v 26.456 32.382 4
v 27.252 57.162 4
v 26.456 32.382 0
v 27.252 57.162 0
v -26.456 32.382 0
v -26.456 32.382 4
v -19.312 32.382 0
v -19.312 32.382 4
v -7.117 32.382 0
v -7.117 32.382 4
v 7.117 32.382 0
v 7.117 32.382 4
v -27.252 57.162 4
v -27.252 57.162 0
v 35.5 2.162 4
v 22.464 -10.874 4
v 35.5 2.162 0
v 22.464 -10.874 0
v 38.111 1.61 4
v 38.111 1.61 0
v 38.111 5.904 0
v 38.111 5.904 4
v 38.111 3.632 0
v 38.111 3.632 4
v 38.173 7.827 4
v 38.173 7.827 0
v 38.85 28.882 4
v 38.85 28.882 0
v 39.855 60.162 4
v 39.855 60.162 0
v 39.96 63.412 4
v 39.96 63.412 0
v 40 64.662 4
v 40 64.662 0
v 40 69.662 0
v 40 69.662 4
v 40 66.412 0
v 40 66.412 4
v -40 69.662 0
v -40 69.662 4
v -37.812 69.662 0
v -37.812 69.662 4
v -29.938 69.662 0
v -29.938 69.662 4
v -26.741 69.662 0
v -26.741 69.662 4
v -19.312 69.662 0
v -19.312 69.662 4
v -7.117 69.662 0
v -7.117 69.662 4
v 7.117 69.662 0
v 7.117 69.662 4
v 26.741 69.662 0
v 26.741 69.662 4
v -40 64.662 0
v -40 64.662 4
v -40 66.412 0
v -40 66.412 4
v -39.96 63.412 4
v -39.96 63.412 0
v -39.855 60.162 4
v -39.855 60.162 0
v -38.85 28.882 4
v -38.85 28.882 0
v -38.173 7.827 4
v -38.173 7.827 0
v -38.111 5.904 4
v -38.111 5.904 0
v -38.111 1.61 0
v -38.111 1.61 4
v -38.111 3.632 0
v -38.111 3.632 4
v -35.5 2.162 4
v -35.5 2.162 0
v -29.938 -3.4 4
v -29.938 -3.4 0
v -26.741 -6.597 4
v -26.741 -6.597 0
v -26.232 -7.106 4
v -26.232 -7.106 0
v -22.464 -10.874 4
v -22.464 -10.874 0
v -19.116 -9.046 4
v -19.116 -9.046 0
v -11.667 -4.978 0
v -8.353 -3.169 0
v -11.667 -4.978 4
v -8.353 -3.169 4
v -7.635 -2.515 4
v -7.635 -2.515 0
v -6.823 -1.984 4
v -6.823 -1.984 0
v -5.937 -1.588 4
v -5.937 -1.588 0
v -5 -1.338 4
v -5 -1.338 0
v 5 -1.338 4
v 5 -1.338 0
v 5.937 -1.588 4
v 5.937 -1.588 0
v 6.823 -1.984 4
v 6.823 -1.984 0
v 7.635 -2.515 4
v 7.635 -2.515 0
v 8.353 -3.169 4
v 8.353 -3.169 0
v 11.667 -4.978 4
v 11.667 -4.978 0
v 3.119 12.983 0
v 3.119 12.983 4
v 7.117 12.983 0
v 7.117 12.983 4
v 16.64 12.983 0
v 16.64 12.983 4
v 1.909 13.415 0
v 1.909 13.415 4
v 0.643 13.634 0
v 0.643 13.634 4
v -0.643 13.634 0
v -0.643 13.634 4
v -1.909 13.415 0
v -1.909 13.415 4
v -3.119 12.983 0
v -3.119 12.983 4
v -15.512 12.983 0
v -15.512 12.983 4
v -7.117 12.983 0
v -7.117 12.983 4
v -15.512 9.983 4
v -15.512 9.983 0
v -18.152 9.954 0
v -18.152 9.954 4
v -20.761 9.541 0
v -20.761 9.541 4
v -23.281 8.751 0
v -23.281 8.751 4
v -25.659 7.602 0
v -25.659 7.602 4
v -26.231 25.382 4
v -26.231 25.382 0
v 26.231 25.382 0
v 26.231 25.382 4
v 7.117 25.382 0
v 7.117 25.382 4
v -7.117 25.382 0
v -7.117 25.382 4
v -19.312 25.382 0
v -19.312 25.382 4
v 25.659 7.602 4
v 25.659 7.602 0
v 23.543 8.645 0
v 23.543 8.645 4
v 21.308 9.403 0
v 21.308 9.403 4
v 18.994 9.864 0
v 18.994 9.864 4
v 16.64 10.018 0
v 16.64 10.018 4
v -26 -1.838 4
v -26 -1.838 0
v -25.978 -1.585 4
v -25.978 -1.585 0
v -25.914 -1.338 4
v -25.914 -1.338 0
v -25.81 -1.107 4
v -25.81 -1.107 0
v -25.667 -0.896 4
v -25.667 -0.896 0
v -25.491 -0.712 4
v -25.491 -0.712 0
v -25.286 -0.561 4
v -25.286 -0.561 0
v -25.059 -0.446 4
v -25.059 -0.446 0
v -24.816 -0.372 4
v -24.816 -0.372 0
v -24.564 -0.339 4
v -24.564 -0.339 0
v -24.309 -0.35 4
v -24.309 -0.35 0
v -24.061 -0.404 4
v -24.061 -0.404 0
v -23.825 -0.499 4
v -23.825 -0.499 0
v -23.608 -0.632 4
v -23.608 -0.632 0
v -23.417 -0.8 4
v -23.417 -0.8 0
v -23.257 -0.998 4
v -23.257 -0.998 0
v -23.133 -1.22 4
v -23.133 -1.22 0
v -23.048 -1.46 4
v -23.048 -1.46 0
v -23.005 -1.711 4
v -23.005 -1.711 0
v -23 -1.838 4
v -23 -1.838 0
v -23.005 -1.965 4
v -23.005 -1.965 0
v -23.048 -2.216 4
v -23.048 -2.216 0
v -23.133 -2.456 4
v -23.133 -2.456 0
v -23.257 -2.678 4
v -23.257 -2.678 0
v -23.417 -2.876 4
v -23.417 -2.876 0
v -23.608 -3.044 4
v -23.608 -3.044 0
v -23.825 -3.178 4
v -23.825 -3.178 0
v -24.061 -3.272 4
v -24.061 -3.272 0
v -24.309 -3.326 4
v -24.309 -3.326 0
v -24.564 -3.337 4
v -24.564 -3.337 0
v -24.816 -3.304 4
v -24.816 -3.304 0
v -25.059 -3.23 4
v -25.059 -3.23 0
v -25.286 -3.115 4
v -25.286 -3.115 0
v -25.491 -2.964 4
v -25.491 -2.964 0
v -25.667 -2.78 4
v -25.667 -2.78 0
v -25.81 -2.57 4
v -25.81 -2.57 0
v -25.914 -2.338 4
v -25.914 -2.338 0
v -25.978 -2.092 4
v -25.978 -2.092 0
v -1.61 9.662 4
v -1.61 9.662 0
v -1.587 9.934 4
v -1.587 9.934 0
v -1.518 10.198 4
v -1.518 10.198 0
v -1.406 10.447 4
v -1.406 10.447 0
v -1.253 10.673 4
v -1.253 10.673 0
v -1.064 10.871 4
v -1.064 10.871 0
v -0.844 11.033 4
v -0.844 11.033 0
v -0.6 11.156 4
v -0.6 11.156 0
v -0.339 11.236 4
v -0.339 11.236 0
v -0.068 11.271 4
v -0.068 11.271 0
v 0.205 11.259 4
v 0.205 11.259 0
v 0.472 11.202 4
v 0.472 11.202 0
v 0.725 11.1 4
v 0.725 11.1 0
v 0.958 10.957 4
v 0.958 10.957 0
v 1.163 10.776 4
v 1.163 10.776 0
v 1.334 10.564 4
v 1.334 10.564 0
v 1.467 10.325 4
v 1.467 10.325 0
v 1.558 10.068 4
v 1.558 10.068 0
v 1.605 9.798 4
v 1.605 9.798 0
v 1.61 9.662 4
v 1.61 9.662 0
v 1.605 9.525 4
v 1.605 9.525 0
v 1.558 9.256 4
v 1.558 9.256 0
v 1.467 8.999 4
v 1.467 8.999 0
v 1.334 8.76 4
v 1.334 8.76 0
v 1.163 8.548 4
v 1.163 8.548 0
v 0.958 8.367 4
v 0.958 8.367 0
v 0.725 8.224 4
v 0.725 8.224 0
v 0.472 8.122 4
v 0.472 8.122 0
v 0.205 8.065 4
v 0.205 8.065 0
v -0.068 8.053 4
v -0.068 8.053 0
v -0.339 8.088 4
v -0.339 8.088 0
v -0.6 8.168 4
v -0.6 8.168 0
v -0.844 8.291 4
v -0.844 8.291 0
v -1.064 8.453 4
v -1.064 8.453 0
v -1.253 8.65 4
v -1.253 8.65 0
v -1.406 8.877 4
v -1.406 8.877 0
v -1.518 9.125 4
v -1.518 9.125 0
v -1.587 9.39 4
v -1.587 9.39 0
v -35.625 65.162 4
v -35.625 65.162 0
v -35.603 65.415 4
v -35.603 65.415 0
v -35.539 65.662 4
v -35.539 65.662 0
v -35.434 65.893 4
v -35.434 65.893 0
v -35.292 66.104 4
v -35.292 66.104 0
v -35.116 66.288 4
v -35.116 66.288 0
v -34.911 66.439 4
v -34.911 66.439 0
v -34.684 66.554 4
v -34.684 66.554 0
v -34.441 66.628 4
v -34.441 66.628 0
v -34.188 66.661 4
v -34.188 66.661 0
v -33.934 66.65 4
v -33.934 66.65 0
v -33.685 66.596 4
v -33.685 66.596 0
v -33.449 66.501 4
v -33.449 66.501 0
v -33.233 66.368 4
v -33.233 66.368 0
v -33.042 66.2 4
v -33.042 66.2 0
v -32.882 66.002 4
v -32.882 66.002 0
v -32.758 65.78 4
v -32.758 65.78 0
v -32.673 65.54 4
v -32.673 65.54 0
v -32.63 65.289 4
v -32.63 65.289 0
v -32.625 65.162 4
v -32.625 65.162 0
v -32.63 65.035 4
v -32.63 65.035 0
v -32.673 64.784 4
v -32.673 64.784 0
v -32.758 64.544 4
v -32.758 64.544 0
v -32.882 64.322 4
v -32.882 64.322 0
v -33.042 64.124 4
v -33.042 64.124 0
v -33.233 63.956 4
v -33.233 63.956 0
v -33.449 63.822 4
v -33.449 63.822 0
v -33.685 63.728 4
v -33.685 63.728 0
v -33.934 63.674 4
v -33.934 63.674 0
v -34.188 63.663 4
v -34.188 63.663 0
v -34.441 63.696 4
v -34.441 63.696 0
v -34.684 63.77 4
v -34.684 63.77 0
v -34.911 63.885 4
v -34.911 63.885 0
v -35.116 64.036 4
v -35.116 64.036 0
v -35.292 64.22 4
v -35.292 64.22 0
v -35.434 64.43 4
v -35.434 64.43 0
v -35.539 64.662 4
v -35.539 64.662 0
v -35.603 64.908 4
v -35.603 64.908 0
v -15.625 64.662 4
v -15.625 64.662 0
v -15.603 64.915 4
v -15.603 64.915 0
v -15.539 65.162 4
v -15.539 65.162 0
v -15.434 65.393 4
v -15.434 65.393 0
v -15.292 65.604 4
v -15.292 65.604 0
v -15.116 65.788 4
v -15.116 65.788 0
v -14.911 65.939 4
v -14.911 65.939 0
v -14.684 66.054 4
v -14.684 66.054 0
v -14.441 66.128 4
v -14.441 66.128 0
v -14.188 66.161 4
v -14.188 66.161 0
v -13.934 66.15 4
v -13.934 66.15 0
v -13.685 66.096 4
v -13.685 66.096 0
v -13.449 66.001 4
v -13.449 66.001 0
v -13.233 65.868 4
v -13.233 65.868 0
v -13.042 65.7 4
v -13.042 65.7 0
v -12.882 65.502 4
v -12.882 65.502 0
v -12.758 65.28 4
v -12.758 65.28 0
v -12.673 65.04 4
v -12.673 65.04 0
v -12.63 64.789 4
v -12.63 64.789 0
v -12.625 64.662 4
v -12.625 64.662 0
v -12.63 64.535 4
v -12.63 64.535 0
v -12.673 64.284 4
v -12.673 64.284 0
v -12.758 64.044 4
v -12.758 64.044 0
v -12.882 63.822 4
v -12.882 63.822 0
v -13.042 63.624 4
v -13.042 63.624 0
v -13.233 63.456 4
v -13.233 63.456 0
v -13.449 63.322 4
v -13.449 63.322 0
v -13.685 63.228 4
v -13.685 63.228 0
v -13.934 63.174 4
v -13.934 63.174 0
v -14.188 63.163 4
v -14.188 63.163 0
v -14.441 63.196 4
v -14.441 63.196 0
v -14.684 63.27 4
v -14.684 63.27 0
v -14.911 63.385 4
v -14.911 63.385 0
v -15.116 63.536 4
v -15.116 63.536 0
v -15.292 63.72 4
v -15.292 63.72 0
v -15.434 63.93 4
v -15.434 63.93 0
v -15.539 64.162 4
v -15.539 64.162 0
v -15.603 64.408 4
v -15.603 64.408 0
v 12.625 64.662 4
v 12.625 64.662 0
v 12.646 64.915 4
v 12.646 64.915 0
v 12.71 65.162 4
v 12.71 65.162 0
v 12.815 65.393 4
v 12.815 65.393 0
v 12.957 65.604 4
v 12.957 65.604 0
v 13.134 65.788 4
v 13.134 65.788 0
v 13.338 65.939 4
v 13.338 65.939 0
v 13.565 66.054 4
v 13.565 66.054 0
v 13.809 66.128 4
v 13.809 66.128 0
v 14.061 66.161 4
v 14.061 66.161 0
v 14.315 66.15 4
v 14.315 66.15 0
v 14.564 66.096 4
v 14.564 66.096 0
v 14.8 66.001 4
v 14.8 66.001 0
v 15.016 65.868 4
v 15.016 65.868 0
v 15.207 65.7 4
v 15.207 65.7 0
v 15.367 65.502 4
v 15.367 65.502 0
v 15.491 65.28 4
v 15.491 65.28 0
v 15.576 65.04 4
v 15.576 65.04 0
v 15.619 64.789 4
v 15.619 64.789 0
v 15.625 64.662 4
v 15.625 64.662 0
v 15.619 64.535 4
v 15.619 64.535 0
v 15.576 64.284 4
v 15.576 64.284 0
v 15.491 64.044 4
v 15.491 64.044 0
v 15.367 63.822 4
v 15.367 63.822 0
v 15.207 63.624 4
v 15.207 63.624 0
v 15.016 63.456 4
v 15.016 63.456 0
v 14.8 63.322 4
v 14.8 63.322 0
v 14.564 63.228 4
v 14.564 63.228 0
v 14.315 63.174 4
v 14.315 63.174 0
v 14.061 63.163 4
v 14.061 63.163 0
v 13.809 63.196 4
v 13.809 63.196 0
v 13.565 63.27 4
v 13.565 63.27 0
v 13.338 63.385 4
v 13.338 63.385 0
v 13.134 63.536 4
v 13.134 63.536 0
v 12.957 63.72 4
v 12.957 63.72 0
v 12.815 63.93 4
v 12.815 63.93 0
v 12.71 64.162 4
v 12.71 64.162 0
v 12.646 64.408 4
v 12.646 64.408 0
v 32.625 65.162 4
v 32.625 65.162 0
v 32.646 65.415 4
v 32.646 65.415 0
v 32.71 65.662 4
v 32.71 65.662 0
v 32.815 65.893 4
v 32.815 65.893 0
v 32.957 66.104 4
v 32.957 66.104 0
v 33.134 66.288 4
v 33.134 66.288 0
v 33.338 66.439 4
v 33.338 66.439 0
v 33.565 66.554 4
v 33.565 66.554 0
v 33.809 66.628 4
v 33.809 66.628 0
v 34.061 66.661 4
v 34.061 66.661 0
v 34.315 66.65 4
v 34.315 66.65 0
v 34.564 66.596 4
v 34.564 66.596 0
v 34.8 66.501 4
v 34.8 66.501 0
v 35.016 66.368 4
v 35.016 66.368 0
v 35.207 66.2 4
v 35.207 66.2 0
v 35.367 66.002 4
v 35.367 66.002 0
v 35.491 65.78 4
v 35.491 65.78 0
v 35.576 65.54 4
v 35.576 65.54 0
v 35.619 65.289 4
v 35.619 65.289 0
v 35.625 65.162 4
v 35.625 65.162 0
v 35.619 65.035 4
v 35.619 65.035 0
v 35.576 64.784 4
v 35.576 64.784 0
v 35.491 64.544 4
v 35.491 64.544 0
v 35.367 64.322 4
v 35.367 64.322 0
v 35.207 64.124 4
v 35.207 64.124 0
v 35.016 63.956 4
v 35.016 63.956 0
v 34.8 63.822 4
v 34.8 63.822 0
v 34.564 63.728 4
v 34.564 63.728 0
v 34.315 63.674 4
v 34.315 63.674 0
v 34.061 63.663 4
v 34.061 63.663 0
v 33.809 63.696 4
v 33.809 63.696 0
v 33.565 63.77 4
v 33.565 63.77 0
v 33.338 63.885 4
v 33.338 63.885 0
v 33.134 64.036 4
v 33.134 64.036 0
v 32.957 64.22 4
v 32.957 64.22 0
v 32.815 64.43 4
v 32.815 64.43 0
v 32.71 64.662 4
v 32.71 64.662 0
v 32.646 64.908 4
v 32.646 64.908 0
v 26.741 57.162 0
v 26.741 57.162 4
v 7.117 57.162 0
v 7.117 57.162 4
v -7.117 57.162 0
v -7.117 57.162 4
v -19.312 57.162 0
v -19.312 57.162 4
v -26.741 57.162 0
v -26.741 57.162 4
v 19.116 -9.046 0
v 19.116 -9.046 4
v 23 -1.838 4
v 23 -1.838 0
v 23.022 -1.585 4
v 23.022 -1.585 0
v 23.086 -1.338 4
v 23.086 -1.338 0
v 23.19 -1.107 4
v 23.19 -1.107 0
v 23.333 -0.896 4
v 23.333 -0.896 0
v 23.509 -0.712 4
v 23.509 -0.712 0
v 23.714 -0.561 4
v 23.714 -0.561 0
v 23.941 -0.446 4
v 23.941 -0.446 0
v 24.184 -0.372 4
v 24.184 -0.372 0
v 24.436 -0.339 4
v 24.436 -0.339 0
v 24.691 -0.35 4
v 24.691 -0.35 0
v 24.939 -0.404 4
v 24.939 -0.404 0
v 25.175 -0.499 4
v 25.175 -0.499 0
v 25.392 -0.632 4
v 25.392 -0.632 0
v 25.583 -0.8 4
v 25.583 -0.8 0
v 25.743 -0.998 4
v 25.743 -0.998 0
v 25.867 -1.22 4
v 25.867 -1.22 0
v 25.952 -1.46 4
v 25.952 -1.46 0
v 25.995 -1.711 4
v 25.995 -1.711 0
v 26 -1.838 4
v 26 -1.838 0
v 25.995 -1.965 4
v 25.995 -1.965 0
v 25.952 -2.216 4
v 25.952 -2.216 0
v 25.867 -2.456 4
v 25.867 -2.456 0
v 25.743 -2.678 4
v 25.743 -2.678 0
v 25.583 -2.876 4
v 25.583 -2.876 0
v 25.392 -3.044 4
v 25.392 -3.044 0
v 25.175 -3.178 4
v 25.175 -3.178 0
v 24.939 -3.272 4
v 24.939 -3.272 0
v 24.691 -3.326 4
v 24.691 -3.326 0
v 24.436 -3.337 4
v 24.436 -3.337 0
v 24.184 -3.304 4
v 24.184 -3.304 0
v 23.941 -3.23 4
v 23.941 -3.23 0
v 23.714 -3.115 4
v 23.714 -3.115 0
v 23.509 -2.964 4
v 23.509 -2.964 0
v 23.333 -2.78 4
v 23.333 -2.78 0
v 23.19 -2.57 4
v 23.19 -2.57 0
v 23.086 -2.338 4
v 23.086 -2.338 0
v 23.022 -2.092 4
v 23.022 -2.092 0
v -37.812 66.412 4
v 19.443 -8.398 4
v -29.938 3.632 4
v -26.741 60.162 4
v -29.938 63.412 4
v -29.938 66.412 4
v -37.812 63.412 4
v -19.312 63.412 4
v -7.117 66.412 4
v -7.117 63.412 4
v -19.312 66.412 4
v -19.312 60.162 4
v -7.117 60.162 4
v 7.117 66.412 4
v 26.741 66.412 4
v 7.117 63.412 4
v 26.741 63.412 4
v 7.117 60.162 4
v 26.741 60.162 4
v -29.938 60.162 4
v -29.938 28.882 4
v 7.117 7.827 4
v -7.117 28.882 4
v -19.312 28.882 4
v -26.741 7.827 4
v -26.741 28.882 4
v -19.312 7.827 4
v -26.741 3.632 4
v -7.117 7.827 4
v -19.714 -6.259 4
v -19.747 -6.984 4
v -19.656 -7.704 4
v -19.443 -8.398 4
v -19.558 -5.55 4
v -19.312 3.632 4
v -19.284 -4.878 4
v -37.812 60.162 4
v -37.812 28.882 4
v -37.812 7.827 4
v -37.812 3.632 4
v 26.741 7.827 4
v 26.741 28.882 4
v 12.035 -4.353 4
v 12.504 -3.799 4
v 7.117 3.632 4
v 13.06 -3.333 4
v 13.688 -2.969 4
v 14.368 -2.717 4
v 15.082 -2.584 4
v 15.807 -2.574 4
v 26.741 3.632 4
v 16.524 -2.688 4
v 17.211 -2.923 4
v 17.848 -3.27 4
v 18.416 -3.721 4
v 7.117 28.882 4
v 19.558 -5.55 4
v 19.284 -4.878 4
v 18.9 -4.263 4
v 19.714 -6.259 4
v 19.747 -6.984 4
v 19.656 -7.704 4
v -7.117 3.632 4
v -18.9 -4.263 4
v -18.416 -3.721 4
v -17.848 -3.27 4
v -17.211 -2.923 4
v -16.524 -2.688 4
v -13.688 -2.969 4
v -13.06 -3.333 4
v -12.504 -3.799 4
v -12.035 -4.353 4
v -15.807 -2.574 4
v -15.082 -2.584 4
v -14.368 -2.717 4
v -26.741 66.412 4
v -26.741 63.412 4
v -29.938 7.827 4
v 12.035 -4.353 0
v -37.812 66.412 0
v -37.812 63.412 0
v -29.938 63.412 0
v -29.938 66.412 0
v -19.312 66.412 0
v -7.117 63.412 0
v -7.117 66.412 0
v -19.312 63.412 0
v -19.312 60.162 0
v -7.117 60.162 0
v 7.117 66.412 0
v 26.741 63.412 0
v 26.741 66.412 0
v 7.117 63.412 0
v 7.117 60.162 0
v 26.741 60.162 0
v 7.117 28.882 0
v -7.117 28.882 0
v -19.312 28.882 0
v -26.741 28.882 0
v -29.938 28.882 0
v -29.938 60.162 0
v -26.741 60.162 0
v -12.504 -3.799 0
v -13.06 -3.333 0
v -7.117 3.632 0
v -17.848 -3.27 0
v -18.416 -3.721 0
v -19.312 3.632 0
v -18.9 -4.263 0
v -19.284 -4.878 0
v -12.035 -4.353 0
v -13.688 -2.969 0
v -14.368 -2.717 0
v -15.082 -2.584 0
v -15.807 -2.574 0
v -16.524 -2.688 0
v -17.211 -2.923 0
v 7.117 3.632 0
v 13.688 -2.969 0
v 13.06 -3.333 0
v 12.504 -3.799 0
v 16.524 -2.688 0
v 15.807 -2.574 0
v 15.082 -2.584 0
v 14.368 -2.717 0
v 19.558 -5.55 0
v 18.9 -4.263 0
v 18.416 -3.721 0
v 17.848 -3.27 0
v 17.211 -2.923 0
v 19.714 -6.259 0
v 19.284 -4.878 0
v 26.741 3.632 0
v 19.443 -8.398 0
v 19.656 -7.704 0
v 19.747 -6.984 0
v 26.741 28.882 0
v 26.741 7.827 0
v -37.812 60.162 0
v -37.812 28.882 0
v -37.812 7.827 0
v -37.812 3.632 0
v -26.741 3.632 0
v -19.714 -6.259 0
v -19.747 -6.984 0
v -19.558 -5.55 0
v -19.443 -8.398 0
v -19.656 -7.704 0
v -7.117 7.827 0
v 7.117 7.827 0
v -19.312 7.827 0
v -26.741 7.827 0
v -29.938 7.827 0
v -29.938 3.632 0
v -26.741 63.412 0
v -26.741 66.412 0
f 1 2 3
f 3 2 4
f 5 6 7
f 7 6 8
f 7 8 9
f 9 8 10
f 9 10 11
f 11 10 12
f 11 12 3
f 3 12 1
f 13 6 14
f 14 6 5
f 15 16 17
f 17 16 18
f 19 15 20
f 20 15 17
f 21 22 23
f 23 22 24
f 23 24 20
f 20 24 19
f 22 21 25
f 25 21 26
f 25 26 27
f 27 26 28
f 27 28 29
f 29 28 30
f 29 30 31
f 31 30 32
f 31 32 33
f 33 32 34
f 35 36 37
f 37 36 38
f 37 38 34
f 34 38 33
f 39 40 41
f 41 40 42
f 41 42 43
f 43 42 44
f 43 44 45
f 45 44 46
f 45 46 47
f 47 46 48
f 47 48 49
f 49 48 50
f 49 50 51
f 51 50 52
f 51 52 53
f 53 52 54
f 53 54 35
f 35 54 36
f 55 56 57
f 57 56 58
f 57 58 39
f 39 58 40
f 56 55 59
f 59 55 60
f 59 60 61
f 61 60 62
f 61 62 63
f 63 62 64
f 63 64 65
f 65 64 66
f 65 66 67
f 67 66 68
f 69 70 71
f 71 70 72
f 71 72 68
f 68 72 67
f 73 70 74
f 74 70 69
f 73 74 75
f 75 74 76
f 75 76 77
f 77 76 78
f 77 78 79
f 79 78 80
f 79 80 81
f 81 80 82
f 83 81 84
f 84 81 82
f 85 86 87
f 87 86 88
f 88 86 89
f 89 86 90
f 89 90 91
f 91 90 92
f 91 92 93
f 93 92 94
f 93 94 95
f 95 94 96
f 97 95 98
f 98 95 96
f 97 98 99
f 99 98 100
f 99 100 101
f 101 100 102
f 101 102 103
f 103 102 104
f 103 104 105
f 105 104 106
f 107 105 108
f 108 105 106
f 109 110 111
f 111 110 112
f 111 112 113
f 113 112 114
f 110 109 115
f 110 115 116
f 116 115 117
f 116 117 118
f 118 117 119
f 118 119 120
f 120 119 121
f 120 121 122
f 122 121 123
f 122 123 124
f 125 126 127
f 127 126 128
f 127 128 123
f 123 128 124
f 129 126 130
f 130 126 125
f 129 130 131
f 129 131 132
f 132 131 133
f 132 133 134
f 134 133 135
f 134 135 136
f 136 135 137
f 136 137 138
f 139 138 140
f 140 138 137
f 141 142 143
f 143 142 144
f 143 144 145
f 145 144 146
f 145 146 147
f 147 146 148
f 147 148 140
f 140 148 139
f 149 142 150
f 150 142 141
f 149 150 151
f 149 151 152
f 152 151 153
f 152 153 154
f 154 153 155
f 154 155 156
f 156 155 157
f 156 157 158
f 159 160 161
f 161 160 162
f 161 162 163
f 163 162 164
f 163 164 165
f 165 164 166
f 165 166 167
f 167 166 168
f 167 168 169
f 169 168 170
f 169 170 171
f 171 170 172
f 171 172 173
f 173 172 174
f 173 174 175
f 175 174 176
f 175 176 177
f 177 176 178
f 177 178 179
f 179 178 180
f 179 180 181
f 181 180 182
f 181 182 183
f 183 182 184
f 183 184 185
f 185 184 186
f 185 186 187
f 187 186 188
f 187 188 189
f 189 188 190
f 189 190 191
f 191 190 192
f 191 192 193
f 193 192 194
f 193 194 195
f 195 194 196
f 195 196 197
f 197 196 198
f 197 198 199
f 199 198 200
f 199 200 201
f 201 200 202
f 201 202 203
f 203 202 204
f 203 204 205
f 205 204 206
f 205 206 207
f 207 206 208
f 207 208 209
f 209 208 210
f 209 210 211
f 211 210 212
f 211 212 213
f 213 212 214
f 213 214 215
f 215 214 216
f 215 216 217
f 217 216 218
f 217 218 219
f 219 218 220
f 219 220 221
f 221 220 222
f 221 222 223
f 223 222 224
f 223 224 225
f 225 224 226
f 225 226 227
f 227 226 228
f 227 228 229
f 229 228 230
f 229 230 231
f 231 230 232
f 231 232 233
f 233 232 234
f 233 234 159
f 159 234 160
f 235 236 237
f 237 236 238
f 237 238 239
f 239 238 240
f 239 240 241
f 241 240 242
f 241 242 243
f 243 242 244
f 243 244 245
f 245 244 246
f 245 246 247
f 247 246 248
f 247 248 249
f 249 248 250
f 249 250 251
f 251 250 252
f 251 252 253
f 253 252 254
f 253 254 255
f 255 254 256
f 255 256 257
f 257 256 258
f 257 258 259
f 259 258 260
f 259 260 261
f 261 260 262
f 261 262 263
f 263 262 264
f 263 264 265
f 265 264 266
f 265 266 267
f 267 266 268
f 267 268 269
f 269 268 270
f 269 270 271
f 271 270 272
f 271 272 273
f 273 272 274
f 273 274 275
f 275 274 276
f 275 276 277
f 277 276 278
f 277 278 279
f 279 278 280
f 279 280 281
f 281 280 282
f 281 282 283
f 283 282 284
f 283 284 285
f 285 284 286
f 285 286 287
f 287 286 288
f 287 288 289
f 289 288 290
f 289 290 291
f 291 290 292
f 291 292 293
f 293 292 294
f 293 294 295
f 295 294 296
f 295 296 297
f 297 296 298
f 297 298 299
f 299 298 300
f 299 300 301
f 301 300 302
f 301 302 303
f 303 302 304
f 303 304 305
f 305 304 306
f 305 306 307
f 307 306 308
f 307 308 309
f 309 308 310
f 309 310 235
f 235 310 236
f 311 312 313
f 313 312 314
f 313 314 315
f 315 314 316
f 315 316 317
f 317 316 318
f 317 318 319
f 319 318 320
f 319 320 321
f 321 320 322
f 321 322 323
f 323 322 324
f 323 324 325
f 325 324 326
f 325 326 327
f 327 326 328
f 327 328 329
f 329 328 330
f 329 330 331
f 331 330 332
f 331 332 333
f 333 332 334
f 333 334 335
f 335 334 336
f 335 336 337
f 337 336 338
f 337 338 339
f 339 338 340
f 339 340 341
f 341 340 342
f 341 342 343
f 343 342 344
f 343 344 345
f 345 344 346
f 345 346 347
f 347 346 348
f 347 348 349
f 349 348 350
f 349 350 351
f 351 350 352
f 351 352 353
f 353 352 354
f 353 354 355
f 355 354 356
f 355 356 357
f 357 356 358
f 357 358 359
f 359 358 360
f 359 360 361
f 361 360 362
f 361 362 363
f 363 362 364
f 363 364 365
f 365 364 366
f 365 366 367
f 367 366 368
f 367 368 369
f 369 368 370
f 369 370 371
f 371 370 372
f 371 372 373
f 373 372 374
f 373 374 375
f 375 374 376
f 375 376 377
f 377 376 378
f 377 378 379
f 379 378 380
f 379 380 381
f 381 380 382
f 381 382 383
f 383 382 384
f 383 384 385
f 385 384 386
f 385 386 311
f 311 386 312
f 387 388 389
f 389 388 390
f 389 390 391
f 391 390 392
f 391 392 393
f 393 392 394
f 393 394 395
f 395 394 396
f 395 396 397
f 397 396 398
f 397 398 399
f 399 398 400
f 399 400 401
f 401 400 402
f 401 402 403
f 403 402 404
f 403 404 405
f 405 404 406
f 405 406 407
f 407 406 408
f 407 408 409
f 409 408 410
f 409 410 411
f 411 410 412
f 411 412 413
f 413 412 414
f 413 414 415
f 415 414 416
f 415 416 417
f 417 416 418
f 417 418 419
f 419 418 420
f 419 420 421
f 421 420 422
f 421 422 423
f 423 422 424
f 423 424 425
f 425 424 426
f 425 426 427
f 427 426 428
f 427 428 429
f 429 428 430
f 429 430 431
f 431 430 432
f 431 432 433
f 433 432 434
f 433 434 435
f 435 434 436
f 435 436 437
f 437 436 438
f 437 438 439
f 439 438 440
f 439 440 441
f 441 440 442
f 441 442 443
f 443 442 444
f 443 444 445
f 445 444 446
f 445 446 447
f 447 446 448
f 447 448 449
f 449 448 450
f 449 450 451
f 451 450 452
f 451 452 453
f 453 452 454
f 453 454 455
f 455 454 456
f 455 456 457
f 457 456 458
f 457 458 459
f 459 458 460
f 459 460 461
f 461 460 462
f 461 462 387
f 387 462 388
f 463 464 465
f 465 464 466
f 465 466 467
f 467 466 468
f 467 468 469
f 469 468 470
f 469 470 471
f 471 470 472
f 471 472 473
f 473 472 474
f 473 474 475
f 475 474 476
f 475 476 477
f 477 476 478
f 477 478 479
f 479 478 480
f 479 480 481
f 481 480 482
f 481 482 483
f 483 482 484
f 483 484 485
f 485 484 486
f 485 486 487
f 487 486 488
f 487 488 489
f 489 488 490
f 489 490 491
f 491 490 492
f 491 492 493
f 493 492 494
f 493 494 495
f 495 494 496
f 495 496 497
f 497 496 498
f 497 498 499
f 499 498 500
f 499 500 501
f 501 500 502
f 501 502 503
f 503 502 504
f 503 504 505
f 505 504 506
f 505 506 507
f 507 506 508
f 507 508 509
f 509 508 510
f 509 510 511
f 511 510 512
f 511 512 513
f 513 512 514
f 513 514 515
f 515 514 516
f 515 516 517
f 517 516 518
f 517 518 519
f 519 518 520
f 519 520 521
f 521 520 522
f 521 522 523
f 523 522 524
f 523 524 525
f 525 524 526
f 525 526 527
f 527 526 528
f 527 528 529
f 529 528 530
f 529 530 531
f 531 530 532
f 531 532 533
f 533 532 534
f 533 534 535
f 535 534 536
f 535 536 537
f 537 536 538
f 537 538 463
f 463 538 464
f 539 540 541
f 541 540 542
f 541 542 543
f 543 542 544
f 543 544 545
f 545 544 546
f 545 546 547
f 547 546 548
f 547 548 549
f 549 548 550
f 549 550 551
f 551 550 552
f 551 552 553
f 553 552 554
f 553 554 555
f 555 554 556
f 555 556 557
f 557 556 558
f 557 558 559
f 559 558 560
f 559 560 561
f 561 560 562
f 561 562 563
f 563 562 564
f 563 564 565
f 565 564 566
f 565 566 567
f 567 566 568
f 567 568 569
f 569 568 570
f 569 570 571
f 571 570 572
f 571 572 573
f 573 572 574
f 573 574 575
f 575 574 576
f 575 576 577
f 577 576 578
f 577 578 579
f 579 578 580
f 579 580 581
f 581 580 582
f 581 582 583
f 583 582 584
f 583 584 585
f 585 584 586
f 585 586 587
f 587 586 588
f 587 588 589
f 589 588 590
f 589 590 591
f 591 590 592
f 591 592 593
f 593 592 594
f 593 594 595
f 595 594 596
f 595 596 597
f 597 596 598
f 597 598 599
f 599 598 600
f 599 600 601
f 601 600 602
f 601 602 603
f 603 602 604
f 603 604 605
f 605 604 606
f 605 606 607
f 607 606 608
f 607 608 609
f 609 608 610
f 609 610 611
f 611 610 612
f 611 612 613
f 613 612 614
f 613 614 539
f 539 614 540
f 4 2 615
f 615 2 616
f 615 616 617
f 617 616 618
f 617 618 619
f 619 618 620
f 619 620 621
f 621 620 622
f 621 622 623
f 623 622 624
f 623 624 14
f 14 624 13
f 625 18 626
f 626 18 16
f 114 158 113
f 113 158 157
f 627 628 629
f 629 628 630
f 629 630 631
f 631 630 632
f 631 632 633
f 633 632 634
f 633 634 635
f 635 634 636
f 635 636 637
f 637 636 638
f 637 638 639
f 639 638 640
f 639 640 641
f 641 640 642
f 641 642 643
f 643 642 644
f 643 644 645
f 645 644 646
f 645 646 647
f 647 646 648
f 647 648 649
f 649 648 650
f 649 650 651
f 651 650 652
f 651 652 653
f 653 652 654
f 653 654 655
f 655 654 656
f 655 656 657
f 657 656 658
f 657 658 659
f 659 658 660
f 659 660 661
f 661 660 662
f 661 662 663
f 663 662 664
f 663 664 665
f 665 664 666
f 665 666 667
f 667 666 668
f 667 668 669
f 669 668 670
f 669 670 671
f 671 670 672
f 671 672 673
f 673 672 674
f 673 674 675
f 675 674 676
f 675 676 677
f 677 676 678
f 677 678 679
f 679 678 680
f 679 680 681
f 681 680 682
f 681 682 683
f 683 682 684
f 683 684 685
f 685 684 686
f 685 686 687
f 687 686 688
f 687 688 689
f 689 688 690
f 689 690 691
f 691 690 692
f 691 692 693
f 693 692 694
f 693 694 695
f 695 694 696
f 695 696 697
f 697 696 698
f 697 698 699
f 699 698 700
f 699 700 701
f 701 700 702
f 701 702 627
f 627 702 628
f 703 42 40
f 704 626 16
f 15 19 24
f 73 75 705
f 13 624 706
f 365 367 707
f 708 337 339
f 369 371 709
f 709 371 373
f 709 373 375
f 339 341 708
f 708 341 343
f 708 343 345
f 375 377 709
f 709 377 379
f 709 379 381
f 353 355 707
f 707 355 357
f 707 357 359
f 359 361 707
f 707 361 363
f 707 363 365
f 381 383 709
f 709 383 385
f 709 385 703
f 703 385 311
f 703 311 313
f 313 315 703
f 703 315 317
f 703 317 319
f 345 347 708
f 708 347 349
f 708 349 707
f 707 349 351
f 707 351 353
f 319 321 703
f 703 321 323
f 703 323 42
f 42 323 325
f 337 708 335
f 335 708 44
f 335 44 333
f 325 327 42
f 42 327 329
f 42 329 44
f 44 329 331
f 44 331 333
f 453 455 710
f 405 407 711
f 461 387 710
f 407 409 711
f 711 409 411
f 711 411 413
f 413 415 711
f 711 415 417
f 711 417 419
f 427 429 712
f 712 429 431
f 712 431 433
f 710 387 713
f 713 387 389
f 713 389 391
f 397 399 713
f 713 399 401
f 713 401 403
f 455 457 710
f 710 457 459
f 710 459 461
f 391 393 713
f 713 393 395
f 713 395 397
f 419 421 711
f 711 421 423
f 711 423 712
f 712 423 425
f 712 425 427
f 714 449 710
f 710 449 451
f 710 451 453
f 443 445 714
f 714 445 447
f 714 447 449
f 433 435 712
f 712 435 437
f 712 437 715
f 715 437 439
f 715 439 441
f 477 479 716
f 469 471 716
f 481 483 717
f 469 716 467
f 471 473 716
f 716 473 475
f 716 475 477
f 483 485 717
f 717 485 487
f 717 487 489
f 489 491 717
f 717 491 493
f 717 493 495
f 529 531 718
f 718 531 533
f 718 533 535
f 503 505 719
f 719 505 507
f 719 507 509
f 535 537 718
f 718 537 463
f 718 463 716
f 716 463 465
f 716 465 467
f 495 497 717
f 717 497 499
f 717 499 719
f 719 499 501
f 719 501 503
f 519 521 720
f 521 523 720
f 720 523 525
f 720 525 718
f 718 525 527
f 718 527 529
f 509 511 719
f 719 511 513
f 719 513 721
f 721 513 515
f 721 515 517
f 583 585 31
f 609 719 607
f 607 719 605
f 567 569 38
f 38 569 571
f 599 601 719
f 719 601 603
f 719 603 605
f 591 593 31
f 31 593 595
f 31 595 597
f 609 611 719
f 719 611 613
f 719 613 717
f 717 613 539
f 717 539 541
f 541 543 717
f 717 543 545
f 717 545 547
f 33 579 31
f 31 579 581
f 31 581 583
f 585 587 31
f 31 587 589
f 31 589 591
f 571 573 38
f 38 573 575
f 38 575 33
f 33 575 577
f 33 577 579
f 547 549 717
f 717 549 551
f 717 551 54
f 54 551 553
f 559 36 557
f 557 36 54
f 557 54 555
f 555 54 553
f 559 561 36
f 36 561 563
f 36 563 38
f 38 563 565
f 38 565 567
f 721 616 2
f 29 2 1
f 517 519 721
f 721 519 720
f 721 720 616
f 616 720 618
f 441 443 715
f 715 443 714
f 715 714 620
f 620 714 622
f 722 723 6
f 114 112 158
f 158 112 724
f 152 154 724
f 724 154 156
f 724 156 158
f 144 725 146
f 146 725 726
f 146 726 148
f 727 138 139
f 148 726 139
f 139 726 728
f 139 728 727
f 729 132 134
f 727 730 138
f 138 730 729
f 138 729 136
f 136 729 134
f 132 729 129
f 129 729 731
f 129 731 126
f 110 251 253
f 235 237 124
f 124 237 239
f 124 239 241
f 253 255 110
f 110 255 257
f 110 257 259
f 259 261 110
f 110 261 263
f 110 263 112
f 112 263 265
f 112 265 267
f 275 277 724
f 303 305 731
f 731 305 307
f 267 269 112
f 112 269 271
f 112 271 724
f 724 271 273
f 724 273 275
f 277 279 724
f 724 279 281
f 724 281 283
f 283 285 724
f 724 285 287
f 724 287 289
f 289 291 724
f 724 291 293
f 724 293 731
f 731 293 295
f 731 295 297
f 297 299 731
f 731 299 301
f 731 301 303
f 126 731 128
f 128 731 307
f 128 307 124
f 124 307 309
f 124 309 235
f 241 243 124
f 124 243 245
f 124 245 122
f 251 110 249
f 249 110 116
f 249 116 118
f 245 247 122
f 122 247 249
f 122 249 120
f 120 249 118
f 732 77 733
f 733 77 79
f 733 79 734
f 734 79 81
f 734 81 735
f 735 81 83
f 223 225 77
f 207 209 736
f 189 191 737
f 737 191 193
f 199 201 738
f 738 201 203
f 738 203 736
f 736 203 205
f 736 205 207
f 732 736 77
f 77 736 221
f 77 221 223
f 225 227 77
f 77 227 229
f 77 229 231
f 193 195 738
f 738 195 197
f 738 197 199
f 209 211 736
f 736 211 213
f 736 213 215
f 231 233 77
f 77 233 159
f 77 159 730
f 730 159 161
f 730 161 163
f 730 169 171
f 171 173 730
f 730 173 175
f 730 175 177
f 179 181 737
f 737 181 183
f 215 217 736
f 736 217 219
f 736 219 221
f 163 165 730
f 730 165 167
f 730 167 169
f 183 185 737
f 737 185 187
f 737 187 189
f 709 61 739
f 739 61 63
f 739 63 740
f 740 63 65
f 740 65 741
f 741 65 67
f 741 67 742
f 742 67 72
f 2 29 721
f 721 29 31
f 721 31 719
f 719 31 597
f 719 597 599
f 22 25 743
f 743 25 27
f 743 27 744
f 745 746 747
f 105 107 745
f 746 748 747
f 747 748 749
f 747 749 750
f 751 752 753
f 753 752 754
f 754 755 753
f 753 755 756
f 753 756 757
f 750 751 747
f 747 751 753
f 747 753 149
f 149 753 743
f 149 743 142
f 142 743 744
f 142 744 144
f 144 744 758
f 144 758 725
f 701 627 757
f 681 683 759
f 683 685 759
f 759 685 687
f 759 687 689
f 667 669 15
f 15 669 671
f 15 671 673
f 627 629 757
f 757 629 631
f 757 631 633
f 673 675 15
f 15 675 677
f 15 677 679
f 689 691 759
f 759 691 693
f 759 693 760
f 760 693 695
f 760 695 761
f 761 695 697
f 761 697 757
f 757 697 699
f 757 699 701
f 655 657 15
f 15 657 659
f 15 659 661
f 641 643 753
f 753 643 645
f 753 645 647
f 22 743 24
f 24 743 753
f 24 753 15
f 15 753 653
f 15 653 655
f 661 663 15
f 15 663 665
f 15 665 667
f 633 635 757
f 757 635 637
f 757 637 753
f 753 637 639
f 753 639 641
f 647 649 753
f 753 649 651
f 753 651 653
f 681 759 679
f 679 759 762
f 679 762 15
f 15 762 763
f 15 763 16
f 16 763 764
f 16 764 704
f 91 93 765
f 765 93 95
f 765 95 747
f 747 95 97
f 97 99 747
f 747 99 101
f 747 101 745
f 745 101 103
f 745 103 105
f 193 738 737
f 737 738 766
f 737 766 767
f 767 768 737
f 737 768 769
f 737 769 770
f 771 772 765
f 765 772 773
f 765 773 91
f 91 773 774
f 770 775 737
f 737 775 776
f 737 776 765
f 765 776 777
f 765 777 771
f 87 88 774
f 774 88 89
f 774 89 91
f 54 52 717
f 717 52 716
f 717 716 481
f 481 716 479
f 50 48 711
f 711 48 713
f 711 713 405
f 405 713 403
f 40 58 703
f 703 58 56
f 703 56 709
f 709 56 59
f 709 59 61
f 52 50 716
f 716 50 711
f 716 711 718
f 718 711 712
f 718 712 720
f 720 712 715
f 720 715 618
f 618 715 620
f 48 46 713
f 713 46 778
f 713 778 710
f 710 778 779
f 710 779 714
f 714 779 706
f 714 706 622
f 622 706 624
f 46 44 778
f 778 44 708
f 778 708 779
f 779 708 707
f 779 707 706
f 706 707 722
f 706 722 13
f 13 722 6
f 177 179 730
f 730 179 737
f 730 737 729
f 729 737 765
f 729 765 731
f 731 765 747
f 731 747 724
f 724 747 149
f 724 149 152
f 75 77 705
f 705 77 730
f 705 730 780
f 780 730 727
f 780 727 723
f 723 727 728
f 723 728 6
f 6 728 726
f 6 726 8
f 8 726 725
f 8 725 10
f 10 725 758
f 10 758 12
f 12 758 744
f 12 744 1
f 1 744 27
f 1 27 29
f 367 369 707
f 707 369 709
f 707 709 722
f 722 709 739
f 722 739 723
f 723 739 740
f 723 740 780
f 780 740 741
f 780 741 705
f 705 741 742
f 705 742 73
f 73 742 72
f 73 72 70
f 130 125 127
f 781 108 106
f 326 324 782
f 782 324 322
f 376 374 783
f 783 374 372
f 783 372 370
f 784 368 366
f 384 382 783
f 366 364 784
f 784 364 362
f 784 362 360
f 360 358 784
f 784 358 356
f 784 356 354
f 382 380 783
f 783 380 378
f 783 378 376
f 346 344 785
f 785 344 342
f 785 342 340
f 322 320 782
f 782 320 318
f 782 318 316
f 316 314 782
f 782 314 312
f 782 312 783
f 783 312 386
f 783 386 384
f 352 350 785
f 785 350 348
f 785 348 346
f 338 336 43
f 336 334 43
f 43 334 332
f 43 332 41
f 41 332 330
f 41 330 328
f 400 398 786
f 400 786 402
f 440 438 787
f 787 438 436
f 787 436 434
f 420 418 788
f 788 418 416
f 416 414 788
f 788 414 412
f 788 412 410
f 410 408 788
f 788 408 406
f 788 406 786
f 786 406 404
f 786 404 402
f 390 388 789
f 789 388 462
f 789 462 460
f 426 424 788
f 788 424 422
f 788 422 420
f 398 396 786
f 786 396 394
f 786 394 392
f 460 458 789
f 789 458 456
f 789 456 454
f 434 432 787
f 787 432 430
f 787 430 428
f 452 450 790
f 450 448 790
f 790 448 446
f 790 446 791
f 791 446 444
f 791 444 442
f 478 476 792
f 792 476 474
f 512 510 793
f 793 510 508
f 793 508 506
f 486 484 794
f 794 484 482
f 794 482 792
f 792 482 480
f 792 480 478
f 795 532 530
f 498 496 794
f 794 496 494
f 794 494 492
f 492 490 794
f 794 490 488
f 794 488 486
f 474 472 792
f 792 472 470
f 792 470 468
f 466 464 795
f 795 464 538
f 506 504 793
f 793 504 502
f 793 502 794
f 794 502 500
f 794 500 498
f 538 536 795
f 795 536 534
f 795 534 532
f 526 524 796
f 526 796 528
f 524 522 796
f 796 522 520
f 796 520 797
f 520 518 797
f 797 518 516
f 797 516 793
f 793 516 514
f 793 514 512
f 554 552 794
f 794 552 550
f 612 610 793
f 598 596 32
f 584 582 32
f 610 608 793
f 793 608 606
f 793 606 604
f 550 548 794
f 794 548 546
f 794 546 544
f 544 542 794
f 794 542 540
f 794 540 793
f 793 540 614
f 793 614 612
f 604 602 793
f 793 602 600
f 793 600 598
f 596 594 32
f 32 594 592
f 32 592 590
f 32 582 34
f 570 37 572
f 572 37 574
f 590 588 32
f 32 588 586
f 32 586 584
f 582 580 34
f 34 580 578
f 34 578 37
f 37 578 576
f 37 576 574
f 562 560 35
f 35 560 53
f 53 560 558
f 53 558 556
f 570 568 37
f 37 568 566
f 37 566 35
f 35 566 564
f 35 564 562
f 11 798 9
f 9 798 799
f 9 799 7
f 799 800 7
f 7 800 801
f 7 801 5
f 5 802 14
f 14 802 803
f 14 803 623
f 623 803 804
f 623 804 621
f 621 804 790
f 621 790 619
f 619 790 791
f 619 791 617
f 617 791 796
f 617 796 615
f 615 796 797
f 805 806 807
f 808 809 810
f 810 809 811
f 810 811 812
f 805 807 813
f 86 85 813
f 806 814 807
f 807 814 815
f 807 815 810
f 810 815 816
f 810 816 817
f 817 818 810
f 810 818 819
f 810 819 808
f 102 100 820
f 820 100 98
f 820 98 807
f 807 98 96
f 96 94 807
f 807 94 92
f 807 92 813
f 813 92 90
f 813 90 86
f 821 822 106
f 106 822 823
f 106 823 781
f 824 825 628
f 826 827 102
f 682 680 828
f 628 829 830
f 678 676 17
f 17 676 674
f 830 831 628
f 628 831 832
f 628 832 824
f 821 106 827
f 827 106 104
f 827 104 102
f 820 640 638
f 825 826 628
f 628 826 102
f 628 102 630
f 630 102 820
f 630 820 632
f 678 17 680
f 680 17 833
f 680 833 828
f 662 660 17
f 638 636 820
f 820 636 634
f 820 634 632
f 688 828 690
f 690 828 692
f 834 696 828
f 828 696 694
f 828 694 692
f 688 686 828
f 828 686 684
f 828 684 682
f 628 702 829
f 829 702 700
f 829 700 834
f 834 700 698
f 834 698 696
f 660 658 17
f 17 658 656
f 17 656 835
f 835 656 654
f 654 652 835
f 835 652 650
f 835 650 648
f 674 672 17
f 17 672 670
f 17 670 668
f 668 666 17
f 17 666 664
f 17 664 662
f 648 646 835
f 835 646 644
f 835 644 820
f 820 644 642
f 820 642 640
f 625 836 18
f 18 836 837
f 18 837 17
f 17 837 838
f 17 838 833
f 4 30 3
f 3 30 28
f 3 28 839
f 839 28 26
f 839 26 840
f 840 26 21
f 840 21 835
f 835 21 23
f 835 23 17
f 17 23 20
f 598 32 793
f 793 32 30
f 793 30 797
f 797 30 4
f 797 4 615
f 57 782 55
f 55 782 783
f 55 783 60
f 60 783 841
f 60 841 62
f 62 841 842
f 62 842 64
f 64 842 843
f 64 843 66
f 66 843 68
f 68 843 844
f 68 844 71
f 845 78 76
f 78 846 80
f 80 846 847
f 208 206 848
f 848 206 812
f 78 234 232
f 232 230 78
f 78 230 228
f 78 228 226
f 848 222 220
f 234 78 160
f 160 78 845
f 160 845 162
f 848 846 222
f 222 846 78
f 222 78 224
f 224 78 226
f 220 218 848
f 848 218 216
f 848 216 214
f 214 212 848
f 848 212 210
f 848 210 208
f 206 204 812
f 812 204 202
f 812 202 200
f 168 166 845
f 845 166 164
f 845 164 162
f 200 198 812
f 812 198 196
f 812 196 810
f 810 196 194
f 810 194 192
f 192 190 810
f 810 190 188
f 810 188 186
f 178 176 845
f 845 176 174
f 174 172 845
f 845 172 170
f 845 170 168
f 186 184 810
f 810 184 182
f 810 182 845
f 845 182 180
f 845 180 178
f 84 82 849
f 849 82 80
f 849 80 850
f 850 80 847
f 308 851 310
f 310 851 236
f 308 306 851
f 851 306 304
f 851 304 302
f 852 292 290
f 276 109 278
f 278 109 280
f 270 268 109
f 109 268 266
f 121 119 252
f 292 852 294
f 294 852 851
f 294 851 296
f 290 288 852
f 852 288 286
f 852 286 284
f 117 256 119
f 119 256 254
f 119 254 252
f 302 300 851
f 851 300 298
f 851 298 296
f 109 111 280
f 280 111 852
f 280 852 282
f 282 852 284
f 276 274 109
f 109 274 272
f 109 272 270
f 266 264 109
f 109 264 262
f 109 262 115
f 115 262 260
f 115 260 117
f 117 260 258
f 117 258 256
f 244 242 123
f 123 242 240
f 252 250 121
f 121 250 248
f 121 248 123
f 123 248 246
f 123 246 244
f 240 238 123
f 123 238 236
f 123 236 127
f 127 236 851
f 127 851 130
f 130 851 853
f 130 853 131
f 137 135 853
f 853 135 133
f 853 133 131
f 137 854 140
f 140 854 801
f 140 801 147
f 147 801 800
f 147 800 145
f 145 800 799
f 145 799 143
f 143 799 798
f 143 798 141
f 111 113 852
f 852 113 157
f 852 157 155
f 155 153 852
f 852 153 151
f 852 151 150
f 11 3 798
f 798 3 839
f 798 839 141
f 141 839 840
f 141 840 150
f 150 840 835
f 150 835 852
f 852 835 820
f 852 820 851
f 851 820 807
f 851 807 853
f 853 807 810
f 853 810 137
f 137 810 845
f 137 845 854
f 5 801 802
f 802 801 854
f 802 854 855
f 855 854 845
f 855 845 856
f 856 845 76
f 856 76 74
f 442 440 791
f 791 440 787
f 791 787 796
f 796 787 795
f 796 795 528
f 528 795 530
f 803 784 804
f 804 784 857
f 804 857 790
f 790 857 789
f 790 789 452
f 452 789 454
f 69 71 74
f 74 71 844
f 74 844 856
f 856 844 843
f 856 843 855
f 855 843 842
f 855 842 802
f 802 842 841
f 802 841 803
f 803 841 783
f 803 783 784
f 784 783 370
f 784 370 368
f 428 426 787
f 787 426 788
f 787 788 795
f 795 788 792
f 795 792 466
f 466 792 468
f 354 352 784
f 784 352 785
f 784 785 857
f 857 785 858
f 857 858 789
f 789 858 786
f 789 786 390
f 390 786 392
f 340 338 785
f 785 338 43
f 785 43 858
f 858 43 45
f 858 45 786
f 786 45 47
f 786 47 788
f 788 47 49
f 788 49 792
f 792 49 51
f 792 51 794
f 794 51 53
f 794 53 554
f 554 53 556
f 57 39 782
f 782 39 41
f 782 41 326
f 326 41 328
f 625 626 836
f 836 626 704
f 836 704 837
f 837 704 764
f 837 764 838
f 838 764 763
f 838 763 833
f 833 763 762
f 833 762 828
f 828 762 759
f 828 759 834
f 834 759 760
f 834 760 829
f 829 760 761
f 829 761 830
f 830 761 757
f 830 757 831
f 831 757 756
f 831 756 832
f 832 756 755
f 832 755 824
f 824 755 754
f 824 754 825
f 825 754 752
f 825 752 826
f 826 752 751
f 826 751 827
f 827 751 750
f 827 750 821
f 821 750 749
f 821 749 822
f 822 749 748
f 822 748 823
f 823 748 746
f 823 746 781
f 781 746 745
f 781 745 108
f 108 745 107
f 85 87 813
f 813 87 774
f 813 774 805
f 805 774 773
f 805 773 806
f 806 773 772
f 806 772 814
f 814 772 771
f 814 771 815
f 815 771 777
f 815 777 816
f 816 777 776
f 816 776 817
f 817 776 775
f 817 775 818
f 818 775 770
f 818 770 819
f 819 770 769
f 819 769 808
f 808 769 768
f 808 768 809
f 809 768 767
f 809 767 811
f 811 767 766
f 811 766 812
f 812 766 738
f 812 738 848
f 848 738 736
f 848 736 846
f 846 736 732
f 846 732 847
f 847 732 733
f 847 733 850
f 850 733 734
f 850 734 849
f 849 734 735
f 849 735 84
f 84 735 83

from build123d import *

# Parameters (mm, degrees)
SKETCH1_R           = 1.5
SKETCH1_R_2         = 1.610311209
BOSS_EXTRUDE1_DEPTH = 4
CUT_EXTRUDE1_START  = -4
CUT_EXTRUDE1_DEPTH  = 4


with BuildPart() as part:
    # Sketch1 → Boss-Extrude1 (new body)
    with BuildSketch(Plane.XY):
        with BuildLine():
            Line((-40, 64.661867252), (-38.110698604, 5.904474432))
            Line((-38.110698604, 5.904474432), (-38.110698604, 1.610311209))
            Line((-38.110698604, 1.610311209), (-35.5, 2.161867252))
            Line((-35.5, 2.161867252), (-22.464466094, -10.873666654))
            Line((-22.464466094, -10.873666654), (-16.914557514, -7.843437092))
            ThreePointArc((-16.914557514, -7.843437092), (-16.338632472, -5.277165438), (-13.868441411, -6.180268964))
            Line((-13.868441411, -6.180268964), (-8.352527173, -3.168600187))
            ThreePointArc((-8.352527173, -3.168600187), (-6.823233186, -1.984189553), (-5, -1.338132748))
            Line((-5, -1.338132748), (5, -1.338132748))
            ThreePointArc((5, -1.338132748), (6.823233186, -1.984189553), (8.352527173, -3.168600187))
            Line((8.352527173, -3.168600187), (13.868441411, -6.180268964))
            ThreePointArc((13.868441411, -6.180268964), (16.338632472, -5.277165438), (16.914557514, -7.843437092))
            Line((16.914557514, -7.843437092), (22.464466094, -10.873666654))
            Line((22.464466094, -10.873666654), (35.5, 2.161867252))
            Line((35.5, 2.161867252), (38.110698604, 1.610311209))
            Line((38.110698604, 1.610311209), (38.110698604, 5.904474432))
            Line((38.110698604, 5.904474432), (40, 64.661867252))
            Line((40, 64.661867252), (40, 69.661867252))
            Line((40, 69.661867252), (-40, 69.661867252))
            Line((-40, 69.661867252), (-40, 64.661867252))
        make_face()
        with BuildLine():
            Line((16.639882489, 12.98256249), (3.11899286, 12.98256249))
            ThreePointArc((3.11899286, 12.98256249), (0, 13.661867252), (-3.11899286, 12.98256249))
            Line((-3.11899286, 12.98256249), (-15.511590599, 12.98256249))
            Line((-15.511590599, 12.98256249), (-15.511590599, 9.98256249))
            ThreePointArc((-15.511590599, 9.98256249), (-20.760848223, 9.540954041), (-25.658820737, 7.60198811))
            Line((-25.658820737, 7.60198811), (-26.230521812, 25.381927681))
            Line((-26.230521812, 25.381927681), (26.230521812, 25.381927681))
            Line((26.230521812, 25.381927681), (25.658820737, 7.60198811))
            ThreePointArc((25.658820737, 7.60198811), (21.308334072, 9.403441757), (16.639882489, 10.017875862))
            Line((16.639882489, 10.017875862), (16.639882489, 12.98256249))
        make_face(mode=Mode.SUBTRACT)
        with Locations((-34.124535685, 65.161867252)):
            Circle(SKETCH1_R, mode=Mode.SUBTRACT)
        with Locations((-14.124535685, 64.661867252)):
            Circle(SKETCH1_R, mode=Mode.SUBTRACT)
        Polygon((-26.45560174, 32.381927681), (-27.252382744, 57.161867252), (27.252382744, 57.161867252), (26.45560174, 32.381927681), align=None, mode=Mode.SUBTRACT)
        with Locations((14.124535685, 64.661867252)):
            Circle(SKETCH1_R, mode=Mode.SUBTRACT)
        with Locations((34.124535685, 65.161867252)):
            Circle(SKETCH1_R, mode=Mode.SUBTRACT)
        with Locations((-24.5, -1.838132748)):
            Circle(SKETCH1_R, mode=Mode.SUBTRACT)
        with Locations((0, 9.661867252)):
            Circle(SKETCH1_R_2, mode=Mode.SUBTRACT)
        with Locations((24.5, -1.838132748)):
            Circle(SKETCH1_R, mode=Mode.SUBTRACT)
    extrude(amount=BOSS_EXTRUDE1_DEPTH)

    # Sketch2 → Cut-Extrude1 (cut)
    with BuildSketch(Plane.XY.offset(4).offset(CUT_EXTRUDE1_START)):
        with BuildLine():
            Line((-19.116408786, -9.045639745), (-16.914557514, -7.843437092))
            ThreePointArc((-16.914557514, -7.843437092), (-16.338632472, -5.277165438), (-13.868441411, -6.180268964))
            Line((-13.868441411, -6.180268964), (-11.666590138, -4.978066311))
            ThreePointArc((-11.666590138, -4.978066311), (-17.536678859, -3.082926424), (-19.116408786, -9.045639745))
        make_face()
        with BuildLine():
            Line((16.914557514, -7.843437092), (19.116408786, -9.045639745))
            ThreePointArc((19.116408786, -9.045639745), (17.536678859, -3.082926424), (11.666590138, -4.978066311))
            Line((11.666590138, -4.978066311), (13.868441411, -6.180268964))
            ThreePointArc((13.868441411, -6.180268964), (16.338632472, -5.277165438), (16.914557514, -7.843437092))
        make_face()
    extrude(amount=CUT_EXTRUDE1_DEPTH, mode=Mode.SUBTRACT)


solid = part.part
